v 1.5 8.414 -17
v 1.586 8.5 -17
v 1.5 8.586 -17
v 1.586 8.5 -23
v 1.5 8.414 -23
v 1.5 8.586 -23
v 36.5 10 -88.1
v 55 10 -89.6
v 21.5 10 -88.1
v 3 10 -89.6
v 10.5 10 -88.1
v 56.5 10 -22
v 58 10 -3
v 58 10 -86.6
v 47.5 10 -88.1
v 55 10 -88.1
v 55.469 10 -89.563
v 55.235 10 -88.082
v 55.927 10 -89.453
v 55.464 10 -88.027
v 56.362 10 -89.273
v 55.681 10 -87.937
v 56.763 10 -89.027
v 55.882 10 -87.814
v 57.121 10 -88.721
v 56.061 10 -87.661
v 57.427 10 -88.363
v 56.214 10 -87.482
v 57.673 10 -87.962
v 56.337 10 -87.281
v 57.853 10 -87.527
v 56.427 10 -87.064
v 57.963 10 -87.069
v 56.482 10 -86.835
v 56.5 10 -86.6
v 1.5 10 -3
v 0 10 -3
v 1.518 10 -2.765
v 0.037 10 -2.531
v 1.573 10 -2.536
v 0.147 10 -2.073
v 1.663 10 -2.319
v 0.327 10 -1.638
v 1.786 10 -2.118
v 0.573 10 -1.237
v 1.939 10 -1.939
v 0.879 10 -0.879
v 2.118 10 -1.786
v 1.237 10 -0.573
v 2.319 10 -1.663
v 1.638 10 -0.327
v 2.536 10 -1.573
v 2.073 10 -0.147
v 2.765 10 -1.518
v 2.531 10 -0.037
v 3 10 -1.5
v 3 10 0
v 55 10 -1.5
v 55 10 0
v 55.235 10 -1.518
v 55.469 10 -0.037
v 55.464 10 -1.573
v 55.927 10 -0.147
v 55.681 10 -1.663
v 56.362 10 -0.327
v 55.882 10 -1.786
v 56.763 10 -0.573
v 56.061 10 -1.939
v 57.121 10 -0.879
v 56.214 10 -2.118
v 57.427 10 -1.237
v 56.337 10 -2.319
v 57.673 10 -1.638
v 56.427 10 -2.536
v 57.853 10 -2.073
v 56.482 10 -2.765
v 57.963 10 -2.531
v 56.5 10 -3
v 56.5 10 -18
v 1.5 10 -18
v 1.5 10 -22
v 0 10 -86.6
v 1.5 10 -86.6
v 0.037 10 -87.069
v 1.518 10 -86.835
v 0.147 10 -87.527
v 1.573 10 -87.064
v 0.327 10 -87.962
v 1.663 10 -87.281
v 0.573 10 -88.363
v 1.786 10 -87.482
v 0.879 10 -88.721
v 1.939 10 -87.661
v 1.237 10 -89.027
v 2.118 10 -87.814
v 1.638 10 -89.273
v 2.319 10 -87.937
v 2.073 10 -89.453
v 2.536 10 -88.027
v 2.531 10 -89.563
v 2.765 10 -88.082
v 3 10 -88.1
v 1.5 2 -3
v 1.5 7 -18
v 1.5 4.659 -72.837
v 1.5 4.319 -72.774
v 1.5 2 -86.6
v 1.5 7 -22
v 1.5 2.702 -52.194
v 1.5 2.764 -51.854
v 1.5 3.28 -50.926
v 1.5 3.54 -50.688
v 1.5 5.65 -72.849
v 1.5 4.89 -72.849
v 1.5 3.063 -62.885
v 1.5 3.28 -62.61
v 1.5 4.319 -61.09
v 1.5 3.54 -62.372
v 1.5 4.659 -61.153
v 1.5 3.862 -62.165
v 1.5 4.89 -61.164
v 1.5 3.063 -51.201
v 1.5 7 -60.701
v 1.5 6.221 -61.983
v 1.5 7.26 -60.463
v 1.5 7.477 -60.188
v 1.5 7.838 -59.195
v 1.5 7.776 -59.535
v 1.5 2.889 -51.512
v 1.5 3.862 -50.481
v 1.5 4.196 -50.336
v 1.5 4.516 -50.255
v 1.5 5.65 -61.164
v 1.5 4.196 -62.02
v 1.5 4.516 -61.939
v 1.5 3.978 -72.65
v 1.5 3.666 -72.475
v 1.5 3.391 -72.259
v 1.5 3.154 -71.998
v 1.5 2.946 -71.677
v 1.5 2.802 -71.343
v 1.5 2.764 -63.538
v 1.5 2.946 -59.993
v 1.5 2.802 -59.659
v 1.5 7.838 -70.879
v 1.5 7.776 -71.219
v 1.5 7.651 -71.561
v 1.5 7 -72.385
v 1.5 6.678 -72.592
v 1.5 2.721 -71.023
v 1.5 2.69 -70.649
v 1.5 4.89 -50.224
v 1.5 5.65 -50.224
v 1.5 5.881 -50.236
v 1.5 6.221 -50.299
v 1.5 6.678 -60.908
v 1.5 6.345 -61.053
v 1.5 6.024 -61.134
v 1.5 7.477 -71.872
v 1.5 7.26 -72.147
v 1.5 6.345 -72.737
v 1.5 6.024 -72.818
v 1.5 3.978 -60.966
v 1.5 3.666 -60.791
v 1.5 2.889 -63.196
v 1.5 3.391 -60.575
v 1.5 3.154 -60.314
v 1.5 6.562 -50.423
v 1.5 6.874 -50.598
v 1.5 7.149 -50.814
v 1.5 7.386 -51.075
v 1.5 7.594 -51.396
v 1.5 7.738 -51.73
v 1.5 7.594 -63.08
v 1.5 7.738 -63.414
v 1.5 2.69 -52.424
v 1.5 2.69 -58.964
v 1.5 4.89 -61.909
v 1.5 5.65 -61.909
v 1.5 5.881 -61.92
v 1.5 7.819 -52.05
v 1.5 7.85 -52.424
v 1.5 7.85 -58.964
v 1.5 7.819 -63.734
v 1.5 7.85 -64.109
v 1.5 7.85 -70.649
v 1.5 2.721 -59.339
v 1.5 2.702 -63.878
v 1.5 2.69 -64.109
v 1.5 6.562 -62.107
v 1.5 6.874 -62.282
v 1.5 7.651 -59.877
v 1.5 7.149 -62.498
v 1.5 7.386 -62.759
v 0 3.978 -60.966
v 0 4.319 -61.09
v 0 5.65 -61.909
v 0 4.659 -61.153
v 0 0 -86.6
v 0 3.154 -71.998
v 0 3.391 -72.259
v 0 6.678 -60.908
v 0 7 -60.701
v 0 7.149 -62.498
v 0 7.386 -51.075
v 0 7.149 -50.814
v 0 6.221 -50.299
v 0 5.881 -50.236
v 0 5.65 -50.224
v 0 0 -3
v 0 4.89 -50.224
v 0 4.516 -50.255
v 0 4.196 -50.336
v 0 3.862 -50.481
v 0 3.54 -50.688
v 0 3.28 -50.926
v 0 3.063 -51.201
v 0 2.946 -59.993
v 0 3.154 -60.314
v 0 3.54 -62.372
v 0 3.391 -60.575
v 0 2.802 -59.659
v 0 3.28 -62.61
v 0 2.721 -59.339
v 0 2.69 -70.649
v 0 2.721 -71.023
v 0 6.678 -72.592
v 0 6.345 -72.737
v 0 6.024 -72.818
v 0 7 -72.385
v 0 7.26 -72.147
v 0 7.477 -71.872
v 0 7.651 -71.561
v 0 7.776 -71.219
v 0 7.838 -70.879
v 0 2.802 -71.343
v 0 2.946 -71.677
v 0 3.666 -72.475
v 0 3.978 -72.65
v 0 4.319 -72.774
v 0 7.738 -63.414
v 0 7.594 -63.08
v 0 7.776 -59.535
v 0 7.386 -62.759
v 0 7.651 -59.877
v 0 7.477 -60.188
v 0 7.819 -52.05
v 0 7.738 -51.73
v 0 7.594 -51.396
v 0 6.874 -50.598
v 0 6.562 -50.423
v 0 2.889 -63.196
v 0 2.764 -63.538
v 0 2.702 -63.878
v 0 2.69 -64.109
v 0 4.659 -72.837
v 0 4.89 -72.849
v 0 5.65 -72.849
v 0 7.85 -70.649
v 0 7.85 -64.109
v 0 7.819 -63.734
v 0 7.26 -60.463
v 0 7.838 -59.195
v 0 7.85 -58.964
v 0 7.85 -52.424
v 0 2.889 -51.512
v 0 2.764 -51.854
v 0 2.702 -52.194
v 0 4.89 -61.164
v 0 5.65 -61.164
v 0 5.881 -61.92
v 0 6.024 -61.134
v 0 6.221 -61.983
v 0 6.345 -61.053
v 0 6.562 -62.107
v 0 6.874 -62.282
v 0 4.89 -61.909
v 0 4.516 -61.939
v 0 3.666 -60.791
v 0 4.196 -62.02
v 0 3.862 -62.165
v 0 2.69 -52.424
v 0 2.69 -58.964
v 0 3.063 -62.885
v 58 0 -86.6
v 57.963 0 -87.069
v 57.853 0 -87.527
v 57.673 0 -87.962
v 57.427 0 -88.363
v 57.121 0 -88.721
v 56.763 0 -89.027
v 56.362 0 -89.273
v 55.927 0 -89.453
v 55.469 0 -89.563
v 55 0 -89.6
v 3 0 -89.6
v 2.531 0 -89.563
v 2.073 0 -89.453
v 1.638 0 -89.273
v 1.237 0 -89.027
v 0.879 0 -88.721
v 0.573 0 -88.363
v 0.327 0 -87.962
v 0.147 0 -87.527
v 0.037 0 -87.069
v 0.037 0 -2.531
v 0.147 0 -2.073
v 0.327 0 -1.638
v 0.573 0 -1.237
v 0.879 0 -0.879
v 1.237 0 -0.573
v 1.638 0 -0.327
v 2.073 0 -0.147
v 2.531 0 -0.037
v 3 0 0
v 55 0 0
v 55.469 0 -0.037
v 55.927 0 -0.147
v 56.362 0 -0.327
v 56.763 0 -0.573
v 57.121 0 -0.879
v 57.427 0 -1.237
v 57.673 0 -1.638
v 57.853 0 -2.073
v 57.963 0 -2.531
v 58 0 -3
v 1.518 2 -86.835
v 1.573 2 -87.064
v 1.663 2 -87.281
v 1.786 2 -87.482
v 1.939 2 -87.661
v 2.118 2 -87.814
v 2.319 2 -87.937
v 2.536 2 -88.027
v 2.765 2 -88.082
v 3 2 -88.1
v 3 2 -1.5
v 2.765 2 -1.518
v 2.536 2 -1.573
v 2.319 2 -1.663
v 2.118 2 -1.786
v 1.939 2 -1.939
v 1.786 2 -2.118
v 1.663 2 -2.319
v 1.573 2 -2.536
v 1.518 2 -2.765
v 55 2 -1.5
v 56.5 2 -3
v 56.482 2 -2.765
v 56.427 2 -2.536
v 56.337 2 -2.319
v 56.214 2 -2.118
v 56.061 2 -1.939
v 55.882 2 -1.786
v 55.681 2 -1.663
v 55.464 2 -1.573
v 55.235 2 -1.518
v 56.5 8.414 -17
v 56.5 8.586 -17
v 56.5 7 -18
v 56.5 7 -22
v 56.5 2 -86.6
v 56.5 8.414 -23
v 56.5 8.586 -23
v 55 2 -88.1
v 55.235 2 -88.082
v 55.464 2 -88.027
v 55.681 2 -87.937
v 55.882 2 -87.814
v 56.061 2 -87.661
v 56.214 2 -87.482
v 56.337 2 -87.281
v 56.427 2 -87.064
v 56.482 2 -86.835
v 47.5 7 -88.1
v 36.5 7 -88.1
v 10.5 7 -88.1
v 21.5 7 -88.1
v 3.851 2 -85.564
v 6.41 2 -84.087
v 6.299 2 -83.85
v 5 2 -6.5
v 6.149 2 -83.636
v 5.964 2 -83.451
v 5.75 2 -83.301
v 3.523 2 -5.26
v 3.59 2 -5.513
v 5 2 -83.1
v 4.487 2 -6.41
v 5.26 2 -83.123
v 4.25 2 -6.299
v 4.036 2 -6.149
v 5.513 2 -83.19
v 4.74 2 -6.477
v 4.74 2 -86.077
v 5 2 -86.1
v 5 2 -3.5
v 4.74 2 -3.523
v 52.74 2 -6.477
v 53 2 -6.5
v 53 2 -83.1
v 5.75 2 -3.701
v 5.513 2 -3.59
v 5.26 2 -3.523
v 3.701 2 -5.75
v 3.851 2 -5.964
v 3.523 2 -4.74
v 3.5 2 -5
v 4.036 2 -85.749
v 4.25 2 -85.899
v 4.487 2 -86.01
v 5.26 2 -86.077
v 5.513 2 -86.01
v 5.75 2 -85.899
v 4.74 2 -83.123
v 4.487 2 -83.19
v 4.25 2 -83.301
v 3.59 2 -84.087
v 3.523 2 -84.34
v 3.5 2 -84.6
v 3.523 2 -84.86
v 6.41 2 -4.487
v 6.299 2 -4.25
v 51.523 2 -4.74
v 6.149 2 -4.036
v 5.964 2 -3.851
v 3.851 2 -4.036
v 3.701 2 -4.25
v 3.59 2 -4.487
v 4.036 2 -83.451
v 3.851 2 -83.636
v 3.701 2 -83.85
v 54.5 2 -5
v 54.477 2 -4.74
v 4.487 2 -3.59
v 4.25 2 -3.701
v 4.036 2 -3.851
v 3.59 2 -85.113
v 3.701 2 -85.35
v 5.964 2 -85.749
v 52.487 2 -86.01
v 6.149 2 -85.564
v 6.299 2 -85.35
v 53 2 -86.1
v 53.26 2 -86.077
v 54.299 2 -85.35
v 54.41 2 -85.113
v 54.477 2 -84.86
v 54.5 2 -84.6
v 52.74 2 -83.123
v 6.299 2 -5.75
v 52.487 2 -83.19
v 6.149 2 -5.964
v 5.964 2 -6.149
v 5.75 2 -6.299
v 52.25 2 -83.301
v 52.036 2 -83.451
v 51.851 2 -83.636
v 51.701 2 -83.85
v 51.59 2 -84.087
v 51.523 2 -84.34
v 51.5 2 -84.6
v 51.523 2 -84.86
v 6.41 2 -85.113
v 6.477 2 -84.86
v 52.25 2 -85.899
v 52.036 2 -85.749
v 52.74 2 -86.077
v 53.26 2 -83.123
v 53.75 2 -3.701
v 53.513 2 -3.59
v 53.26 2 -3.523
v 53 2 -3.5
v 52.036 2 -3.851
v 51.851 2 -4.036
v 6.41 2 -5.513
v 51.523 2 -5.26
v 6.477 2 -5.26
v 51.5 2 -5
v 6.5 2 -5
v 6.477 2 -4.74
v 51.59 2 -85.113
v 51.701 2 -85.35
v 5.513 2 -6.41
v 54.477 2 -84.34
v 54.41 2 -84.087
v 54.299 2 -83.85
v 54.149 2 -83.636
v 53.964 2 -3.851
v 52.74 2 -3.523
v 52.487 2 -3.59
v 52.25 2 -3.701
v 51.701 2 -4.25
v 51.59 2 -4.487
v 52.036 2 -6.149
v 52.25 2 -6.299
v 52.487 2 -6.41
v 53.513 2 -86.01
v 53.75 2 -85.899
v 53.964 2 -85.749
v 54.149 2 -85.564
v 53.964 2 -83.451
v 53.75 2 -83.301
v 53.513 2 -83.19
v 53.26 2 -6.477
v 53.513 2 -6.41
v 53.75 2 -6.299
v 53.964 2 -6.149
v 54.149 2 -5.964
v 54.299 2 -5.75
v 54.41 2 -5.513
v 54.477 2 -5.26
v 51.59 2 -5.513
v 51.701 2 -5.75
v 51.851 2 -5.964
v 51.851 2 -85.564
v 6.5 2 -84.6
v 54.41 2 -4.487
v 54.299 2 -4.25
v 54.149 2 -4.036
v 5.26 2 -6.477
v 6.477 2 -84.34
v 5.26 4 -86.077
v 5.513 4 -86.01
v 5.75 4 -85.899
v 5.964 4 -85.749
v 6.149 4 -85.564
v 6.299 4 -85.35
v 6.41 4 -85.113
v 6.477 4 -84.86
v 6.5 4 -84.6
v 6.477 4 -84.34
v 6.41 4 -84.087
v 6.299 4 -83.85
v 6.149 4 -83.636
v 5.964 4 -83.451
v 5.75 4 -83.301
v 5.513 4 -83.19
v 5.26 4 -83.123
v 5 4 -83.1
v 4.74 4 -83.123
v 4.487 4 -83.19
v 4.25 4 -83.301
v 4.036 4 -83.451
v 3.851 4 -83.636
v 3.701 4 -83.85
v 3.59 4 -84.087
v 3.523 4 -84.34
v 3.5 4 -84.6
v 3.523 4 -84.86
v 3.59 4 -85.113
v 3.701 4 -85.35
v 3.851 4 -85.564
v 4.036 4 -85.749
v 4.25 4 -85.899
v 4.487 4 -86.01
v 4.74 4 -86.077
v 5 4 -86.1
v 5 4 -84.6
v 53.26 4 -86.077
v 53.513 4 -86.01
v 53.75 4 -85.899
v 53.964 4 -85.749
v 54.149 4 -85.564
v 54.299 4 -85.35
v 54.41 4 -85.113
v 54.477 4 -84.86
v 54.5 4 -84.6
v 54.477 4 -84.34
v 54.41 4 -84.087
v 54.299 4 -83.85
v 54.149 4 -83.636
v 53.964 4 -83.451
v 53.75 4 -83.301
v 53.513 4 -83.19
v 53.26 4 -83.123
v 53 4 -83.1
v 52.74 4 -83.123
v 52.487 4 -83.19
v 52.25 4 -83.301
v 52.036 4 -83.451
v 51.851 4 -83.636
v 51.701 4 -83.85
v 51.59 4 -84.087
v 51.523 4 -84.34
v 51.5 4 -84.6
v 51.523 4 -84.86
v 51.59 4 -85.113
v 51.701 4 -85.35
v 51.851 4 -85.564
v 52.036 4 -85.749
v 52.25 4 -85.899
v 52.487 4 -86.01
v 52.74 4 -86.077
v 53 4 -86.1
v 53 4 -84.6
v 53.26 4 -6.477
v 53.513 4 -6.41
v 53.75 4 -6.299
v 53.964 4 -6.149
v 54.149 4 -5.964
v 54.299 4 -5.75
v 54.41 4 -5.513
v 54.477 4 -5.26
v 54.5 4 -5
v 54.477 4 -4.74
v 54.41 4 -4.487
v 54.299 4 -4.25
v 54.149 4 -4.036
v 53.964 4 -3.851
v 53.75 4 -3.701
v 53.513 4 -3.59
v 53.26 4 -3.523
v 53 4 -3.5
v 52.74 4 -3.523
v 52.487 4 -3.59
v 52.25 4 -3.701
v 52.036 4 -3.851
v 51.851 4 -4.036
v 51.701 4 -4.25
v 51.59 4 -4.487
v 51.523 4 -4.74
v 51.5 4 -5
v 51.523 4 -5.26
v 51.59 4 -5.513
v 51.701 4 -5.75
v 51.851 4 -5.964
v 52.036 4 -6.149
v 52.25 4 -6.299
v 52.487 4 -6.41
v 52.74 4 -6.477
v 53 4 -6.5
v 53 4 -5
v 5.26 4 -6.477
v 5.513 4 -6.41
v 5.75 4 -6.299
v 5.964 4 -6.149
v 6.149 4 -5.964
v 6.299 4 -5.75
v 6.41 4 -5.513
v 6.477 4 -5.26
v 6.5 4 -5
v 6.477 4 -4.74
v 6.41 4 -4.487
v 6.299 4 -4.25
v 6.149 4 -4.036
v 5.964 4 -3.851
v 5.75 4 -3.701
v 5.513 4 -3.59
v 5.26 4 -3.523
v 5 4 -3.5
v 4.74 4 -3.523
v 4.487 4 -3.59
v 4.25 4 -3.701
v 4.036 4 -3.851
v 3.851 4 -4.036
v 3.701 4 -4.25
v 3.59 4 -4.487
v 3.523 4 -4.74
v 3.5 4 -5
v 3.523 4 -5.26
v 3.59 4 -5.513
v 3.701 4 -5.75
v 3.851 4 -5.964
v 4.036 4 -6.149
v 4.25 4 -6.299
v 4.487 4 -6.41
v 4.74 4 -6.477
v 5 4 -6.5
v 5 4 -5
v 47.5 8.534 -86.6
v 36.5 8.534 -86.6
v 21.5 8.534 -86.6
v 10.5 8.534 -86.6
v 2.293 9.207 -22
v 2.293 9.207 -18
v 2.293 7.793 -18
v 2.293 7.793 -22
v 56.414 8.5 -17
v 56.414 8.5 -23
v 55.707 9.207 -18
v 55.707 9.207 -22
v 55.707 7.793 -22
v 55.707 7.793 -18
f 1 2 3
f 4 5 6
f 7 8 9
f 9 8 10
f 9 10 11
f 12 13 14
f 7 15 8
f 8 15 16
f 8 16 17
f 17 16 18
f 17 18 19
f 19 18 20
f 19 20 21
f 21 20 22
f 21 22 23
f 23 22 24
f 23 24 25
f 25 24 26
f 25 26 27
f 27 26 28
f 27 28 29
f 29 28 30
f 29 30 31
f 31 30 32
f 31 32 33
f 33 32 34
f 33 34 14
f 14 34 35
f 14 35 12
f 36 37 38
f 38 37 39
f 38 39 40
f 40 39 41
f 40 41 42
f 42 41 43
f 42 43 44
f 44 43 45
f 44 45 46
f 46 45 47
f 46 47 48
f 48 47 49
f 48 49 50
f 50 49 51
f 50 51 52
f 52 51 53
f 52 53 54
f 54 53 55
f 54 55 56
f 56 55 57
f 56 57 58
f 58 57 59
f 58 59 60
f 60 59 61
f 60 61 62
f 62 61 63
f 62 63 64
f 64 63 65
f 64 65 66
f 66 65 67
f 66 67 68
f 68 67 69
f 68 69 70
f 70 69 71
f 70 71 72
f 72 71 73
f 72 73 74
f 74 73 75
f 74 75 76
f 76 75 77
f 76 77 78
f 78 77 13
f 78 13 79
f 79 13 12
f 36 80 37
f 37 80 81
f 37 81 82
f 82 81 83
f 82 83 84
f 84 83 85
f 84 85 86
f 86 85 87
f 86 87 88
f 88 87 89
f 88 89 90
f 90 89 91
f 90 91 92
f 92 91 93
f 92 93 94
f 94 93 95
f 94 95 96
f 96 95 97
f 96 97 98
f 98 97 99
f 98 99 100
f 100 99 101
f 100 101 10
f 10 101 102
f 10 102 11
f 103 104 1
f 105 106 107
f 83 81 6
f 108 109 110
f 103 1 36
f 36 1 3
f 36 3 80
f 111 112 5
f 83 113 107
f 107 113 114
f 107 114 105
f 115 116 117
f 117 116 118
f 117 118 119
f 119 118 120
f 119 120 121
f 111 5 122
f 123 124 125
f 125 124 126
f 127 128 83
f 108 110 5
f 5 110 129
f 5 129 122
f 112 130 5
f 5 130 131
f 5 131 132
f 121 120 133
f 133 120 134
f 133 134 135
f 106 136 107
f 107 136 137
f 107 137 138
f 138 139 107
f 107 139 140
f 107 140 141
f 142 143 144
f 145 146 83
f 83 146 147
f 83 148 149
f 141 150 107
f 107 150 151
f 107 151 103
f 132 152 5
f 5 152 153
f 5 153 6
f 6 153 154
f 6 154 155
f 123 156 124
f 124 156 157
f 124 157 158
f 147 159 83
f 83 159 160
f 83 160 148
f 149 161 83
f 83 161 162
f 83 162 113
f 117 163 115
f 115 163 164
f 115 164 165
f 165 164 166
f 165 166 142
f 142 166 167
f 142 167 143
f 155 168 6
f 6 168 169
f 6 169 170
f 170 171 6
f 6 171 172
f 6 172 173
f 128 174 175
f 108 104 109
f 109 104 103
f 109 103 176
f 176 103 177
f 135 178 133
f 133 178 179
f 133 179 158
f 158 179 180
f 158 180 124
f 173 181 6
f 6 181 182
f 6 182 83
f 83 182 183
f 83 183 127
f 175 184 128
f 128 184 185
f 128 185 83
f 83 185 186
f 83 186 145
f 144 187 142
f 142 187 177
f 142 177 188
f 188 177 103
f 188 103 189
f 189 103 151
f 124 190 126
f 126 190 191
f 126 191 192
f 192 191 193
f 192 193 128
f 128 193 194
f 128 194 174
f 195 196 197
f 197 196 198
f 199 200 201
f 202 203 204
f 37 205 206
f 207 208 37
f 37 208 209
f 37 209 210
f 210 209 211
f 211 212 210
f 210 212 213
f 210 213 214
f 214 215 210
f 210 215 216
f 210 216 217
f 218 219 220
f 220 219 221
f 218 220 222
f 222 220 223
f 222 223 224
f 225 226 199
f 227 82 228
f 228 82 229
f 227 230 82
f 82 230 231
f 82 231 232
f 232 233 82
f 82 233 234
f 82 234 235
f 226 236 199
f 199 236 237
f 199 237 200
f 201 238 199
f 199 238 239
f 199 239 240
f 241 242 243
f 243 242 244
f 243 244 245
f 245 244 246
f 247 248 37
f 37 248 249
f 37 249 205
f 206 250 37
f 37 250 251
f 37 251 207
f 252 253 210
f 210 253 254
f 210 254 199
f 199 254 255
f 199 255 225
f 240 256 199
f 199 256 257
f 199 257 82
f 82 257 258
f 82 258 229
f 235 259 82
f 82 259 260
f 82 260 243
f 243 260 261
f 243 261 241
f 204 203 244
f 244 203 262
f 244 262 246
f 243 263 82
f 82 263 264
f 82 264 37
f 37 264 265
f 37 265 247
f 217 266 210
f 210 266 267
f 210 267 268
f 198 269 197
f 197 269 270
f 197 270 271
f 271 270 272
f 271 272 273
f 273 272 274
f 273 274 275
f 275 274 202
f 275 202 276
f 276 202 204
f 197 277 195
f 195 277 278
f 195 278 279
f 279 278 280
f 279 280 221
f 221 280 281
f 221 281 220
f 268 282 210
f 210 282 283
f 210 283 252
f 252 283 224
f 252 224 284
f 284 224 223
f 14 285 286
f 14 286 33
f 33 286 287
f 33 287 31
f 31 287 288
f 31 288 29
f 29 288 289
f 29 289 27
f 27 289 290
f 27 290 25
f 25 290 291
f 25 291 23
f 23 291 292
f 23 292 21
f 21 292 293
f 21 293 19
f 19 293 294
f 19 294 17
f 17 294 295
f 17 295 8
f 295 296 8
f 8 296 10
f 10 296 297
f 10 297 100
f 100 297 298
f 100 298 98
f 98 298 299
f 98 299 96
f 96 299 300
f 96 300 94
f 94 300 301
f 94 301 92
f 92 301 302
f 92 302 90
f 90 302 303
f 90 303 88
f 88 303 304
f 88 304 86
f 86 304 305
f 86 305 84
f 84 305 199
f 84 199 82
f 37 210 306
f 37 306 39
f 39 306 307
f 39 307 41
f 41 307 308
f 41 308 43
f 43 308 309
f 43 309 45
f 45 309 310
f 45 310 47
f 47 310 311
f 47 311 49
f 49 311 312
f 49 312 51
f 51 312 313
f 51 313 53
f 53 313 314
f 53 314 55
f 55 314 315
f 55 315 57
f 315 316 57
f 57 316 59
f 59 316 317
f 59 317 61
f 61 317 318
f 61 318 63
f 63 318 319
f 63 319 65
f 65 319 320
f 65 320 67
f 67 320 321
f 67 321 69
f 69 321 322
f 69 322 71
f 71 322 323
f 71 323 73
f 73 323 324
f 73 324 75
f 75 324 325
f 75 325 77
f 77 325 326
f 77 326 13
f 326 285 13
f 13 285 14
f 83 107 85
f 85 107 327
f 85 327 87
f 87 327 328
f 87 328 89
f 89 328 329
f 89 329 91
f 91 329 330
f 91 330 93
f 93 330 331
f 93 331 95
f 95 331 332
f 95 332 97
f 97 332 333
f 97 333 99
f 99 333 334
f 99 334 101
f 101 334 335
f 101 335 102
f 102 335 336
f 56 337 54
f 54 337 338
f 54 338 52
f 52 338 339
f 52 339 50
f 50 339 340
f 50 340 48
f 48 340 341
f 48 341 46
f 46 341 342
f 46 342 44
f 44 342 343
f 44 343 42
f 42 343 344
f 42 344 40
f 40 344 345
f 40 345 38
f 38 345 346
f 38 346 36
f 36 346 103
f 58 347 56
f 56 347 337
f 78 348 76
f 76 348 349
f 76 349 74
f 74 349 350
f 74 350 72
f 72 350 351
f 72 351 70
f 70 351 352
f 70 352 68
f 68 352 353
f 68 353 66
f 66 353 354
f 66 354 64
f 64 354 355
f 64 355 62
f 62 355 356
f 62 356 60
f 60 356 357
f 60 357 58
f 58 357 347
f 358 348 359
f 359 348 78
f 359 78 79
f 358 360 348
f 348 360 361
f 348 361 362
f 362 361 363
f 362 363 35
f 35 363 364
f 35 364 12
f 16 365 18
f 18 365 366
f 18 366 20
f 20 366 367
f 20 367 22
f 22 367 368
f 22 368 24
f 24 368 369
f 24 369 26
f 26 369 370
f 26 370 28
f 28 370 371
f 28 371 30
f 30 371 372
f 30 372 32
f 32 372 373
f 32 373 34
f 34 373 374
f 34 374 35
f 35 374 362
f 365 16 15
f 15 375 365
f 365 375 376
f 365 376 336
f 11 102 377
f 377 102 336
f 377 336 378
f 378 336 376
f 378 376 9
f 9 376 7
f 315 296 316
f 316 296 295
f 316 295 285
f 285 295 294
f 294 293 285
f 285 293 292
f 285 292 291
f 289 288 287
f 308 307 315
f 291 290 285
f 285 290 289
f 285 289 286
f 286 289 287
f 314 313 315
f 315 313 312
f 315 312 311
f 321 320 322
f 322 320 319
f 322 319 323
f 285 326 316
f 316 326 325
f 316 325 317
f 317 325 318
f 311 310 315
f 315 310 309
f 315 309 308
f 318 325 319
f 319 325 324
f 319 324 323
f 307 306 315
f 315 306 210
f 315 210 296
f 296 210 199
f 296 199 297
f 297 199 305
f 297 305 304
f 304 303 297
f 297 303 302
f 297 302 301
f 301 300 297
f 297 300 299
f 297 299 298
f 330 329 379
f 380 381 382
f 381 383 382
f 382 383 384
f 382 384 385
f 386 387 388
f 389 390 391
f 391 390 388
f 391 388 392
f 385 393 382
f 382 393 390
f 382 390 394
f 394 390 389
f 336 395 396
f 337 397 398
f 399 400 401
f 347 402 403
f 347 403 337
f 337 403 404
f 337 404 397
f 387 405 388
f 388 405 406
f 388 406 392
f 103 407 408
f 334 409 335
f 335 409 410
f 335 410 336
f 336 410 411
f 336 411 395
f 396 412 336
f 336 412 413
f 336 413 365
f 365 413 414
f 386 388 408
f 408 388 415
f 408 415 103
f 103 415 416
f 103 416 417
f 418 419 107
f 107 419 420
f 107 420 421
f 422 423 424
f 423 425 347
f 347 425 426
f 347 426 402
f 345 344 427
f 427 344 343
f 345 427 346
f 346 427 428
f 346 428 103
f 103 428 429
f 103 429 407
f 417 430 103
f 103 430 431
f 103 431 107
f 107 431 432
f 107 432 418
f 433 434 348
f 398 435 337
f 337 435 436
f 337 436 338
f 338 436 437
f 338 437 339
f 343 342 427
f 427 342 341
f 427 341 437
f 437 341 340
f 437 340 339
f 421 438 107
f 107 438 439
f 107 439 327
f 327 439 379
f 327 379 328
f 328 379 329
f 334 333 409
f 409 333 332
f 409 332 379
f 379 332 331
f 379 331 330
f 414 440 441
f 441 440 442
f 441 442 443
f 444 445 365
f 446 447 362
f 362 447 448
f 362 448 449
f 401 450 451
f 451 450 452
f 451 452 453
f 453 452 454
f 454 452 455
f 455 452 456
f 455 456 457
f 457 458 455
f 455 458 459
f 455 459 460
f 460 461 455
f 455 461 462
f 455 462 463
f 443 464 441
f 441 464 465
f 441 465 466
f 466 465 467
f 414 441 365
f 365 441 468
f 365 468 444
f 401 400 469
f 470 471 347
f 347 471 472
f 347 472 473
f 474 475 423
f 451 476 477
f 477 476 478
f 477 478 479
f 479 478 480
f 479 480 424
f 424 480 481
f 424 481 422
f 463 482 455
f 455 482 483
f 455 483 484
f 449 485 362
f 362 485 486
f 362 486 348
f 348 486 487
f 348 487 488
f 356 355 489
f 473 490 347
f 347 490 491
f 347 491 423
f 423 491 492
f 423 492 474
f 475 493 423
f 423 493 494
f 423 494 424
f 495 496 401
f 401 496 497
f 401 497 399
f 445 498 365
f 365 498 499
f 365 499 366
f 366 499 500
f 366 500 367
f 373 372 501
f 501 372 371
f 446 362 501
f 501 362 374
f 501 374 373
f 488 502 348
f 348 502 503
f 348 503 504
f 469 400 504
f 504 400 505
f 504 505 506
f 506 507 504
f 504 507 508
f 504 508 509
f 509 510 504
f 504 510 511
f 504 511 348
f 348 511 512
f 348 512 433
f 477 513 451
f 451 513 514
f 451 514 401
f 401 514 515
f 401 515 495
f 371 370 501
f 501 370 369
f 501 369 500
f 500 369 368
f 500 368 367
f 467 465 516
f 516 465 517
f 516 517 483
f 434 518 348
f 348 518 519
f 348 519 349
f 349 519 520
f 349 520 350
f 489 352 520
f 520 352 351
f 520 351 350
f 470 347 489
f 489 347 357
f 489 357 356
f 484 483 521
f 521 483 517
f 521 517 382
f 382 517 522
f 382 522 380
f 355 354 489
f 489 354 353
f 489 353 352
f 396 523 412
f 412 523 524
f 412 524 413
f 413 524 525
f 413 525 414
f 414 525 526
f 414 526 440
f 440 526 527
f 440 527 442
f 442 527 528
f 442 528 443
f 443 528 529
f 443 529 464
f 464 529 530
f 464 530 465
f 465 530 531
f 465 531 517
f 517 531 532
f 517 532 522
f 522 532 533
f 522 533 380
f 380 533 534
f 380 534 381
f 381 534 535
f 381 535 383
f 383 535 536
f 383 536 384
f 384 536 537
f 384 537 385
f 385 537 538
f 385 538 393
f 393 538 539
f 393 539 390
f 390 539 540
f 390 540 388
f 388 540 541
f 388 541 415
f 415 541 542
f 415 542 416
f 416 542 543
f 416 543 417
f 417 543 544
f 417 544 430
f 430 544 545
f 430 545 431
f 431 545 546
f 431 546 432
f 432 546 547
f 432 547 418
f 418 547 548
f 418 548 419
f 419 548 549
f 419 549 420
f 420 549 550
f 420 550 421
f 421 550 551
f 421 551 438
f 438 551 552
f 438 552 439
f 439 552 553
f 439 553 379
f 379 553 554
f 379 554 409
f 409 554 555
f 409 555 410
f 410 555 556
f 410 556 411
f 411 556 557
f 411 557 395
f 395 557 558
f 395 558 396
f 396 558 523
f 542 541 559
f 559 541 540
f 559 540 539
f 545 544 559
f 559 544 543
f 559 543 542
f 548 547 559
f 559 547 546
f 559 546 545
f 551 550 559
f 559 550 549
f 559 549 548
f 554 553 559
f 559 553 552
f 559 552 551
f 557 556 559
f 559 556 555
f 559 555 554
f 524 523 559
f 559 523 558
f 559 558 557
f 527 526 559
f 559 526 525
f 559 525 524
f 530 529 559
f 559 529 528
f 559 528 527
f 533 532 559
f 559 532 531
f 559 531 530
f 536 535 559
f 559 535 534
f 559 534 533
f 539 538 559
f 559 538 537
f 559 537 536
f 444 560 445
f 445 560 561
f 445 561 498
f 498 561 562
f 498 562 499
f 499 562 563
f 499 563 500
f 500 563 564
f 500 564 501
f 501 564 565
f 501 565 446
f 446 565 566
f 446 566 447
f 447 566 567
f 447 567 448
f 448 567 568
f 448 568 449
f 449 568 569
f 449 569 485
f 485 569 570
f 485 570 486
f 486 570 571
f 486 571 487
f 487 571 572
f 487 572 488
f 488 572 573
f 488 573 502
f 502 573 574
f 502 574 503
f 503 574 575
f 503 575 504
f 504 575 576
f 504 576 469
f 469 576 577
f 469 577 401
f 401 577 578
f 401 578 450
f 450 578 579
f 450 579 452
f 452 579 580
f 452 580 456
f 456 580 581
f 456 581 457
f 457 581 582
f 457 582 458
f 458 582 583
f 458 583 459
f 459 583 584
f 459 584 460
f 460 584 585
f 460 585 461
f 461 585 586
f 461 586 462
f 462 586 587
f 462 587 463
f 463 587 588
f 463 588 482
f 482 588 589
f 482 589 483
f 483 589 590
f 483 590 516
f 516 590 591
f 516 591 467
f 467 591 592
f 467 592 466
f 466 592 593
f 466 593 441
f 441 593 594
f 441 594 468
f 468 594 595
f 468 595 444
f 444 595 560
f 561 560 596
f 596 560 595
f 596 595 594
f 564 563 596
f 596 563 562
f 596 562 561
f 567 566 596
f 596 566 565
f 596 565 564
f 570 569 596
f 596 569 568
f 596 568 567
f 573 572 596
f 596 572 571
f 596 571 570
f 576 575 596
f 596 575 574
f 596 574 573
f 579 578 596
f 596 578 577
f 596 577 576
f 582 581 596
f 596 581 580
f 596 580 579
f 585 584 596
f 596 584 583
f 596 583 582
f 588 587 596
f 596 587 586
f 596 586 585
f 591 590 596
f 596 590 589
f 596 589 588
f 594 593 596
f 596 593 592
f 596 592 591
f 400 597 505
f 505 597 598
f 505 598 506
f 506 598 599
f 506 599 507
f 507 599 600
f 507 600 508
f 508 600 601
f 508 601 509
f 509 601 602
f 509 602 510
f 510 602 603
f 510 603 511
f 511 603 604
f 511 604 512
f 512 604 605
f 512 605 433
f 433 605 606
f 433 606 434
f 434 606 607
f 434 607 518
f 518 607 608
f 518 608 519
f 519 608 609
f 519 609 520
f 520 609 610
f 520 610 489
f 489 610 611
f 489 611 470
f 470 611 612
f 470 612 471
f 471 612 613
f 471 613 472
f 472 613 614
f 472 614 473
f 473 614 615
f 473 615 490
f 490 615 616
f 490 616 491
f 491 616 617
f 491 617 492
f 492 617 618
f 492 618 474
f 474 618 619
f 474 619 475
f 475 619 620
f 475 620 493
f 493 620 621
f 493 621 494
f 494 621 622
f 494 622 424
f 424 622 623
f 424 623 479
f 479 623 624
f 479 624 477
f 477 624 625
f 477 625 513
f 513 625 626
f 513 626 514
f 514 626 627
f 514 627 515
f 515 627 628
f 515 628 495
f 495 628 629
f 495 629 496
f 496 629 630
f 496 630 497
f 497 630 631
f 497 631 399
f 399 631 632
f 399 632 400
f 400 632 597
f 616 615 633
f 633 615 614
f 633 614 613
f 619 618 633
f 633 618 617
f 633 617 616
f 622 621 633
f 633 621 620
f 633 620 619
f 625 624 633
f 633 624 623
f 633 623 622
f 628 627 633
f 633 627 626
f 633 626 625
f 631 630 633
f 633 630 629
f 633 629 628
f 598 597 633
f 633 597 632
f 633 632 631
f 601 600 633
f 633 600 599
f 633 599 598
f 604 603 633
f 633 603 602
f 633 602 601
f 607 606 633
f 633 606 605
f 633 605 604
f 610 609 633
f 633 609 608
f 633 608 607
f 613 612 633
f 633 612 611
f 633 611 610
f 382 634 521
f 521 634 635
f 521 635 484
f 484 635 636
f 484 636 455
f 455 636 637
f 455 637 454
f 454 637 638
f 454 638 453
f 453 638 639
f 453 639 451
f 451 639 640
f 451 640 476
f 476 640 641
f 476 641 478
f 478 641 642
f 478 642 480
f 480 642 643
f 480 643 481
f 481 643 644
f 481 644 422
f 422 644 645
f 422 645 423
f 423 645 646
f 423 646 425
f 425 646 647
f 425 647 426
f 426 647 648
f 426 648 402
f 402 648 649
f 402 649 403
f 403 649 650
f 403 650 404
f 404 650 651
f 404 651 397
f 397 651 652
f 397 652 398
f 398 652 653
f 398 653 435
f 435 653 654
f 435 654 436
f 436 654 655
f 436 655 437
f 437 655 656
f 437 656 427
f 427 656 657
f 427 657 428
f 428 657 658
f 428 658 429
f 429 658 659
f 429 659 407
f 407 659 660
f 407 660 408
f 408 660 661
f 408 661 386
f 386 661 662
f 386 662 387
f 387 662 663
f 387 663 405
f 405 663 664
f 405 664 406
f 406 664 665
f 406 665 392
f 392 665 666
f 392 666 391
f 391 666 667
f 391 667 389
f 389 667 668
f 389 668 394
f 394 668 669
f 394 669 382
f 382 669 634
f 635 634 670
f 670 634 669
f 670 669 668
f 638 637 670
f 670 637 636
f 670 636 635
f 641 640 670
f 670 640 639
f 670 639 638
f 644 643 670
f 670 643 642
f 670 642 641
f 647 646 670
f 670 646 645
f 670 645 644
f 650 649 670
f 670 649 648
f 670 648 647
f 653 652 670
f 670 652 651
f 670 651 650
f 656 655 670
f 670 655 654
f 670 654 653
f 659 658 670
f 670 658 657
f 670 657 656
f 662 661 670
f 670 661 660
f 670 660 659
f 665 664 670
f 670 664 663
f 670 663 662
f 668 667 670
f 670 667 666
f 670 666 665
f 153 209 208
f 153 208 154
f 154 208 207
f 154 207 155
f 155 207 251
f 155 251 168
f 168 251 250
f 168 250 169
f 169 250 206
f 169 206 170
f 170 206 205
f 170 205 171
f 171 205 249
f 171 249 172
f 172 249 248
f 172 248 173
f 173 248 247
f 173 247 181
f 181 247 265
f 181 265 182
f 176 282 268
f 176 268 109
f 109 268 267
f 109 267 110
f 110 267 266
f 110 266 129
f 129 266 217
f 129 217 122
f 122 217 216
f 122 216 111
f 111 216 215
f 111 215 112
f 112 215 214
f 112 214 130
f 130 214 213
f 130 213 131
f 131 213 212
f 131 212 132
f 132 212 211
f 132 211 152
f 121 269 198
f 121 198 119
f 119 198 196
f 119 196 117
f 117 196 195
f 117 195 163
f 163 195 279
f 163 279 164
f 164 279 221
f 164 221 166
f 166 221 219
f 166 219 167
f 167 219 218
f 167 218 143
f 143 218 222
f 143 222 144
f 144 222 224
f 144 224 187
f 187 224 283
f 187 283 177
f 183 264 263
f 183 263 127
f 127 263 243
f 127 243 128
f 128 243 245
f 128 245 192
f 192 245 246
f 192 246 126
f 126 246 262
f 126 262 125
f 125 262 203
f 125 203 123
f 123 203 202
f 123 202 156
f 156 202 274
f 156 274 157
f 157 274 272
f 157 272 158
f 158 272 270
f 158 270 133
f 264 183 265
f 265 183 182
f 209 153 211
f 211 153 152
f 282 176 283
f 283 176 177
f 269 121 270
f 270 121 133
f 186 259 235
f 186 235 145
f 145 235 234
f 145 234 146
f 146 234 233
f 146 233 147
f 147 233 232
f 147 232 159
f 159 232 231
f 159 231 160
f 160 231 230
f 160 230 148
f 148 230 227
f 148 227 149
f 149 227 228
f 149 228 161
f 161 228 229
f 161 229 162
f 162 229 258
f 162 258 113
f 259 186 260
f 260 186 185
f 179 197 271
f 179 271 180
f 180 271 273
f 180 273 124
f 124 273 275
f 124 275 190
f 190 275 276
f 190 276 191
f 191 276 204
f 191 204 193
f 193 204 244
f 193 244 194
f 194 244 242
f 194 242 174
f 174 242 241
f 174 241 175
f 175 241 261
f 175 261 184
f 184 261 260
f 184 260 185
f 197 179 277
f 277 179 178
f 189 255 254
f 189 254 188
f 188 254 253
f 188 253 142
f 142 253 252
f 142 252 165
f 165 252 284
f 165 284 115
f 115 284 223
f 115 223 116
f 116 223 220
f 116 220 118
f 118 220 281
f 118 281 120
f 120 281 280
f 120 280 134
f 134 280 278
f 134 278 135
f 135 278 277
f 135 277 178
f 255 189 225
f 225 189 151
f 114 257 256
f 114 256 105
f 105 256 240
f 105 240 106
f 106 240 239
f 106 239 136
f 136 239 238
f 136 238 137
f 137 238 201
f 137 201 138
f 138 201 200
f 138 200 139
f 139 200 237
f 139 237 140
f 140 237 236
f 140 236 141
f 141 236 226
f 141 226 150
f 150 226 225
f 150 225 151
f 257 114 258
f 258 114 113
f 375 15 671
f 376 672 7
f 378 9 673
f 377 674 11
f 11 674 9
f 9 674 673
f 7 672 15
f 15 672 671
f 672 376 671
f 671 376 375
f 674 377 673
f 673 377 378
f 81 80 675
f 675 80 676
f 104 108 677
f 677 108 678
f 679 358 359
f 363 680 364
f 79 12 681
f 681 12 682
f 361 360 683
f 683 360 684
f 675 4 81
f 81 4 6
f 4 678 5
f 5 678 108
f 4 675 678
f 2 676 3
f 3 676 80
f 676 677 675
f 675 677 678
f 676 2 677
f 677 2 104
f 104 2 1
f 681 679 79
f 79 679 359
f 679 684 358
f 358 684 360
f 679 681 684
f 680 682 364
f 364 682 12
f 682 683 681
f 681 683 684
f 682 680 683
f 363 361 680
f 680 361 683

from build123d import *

# Parameters (mm, degrees)
EXTRUDE_1_DEPTH     = 2
EXTRUDE_2_DEPTH     = 11
SKETCH_5_R          = 1.5
EXTRUDE_3_DEPTH     = 2
CUT_EXTRUDE_START   = -3
CUT_EXTRUDE_2_DEPTH = 3
SKETCH_8_W          = 11
SKETCH_8_H          = 3
EXTRUDE_4_DEPTH     = 1.5
CUT_EXTRUDE_3_DEPTH = 40
SKETCH_11_W         = 6
SKETCH_11_H         = 3
EXTRUDE_5_DEPTH     = 1.5
CUT_EXTRUDE_4_DEPTH = 7
SKETCH_13_W         = 6
SKETCH_13_H         = 3
EXTRUDE_6_DEPTH     = 1.5
CUT_EXTRUDE_5_DEPTH = 7
CHAMFER_1_SIZE      = 1
CHAMFER_2_SIZE      = 1
CUT_EXTRUDE_6_DEPTH = 2


with BuildPart() as part:
    # 草图1 → 凸台-拉伸1 (new body)
    with BuildSketch(Plane(origin=(0, 0, 0), x_dir=(1, 0, 0), z_dir=(0, 1, 0))):
        with BuildLine():
            Line((3, 0), (55, 0))
            ThreePointArc((55, 0), (57.121320344, 0.878679656), (58, 3))
            Line((58, 3), (58, 86.6))
            ThreePointArc((58, 86.6), (57.121320344, 88.721320344), (55, 89.6))
            Line((55, 89.6), (3, 89.6))
            ThreePointArc((3, 89.6), (0.878679656, 88.721320344), (0, 86.6))
            Line((0, 86.6), (0, 3))
            ThreePointArc((0, 3), (0.878679656, 0.878679656), (3, 0))
        make_face()
    extrude(amount=EXTRUDE_1_DEPTH)

    # 草图3 → 凸台-拉伸2 (add)
    with BuildSketch(Plane(origin=(0, 2, 0), x_dir=(1, 0, 0), z_dir=(0, 1, 0))):
        with BuildLine():
            Line((0, 86.6), (0, 3))
            ThreePointArc((0, 3), (0.878679656, 0.878679656), (3, 0))
            Line((3, 0), (55, 0))
            ThreePointArc((55, 0), (57.121320344, 0.878679656), (58, 3))
            Line((58, 3), (58, 86.6))
            ThreePointArc((58, 86.6), (57.121320344, 88.721320344), (55, 89.6))
            Line((55, 89.6), (3, 89.6))
            ThreePointArc((3, 89.6), (0.878679656, 88.721320344), (0, 86.6))
        make_face()
        with BuildLine():
            Line((1.5, 86.6), (1.5, 3))
            ThreePointArc((1.5, 3), (1.939339828, 1.939339828), (3, 1.5))
            Line((3, 1.5), (55, 1.5))
            ThreePointArc((55, 1.5), (56.060660172, 1.939339828), (56.5, 3))
            Line((56.5, 3), (56.5, 86.6))
            ThreePointArc((56.5, 86.6), (56.060660172, 87.660660172), (55, 88.1))
            Line((55, 88.1), (3, 88.1))
            ThreePointArc((3, 88.1), (1.939339828, 87.660660172), (1.5, 86.6))
        make_face(mode=Mode.SUBTRACT)
    extrude(amount=EXTRUDE_2_DEPTH)

    # 草图5 → 凸台-拉伸3 (add)
    with BuildSketch(Plane(origin=(0, 2, 0), x_dir=(1, 0, 0), z_dir=(0, 1, 0))):
        with Locations(Location((5, 84.6, 0), (0, 0, 270))):
            Circle(SKETCH_5_R)
        with Locations(Location((53, 84.6, 0), (0, 0, 90))):
            Circle(SKETCH_5_R)
        with Locations(Location((53, 5, 0), (0, 0, 270))):
            Circle(SKETCH_5_R)
        with Locations(Location((5, 5, 0), (0, 0, 90))):
            Circle(SKETCH_5_R)
    extrude(amount=EXTRUDE_3_DEPTH)

    # 草图7 → 切除-拉伸2 (cut)
    with BuildSketch(Plane(origin=(0, 13, 0), x_dir=(1, 0, 0), z_dir=(0, 1, 0)).offset(CUT_EXTRUDE_START)):
        with BuildLine():
            Line((0, 86.6), (0, 3))
            ThreePointArc((0, 3), (0.878679656, 0.878679656), (3, 0))
            Line((3, 0), (55, 0))
            ThreePointArc((55, 0), (57.121320344, 0.878679656), (58, 3))
            Line((58, 3), (58, 86.6))
            ThreePointArc((58, 86.6), (57.121320344, 88.721320344), (55, 89.6))
            Line((55, 89.6), (3, 89.6))
            ThreePointArc((3, 89.6), (0.878679656, 88.721320344), (0, 86.6))
        make_face()
        with BuildLine():
            Line((3, 1.5), (55, 1.5))
            ThreePointArc((55, 1.5), (56.060660172, 1.939339828), (56.5, 3))
            Line((56.5, 3), (56.5, 86.6))
            ThreePointArc((56.5, 86.6), (56.060660172, 87.660660172), (55, 88.1))
            Line((55, 88.1), (3, 88.1))
            ThreePointArc((3, 88.1), (1.939339828, 87.660660172), (1.5, 86.6))
            Line((1.5, 86.6), (1.5, 3))
            ThreePointArc((1.5, 3), (1.939339828, 1.939339828), (3, 1.5))
        make_face(mode=Mode.SUBTRACT)
    extrude(amount=CUT_EXTRUDE_2_DEPTH, mode=Mode.SUBTRACT)

    # 草图8 → 凸台-拉伸4 (add)
    with BuildSketch(Plane.XY.offset(-88.1)):
        with Locations((16, 8.5)):
            Rectangle(SKETCH_8_W, SKETCH_8_H)
        with Locations((42, 8.5)):
            Rectangle(SKETCH_8_W, SKETCH_8_H)
    extrude(amount=EXTRUDE_4_DEPTH)

    # 草图10 → 切除-拉伸3 (cut)
    with BuildSketch(Plane.ZY.offset(-10.5)):
        Polygon((-86.6, 10), (-88.1, 10), (-86.6, 8.534338043), align=None)
        Polygon((-86.6, 7), (-86.6, 8.534338043), (-88.1, 7), align=None)
    extrude(amount=-CUT_EXTRUDE_3_DEPTH, mode=Mode.SUBTRACT)

    # 草图11 → 凸台-拉伸5 (add)
    with BuildSketch(Plane(origin=(1.5, 0, 0), x_dir=(0, 0, -1), z_dir=(1, 0, 0))):
        with Locations((20, 8.5)):
            Rectangle(SKETCH_11_W, SKETCH_11_H)
    extrude(amount=EXTRUDE_5_DEPTH)

    # 草图12 → 切除-拉伸4 (cut)
    with BuildSketch(Plane.XY.offset(-17)):
        Polygon((1.5, 10), (3, 8.5), (3, 10), align=None)
        Polygon((3, 7), (3, 8.5), (1.5, 7), align=None)
    extrude(amount=-CUT_EXTRUDE_4_DEPTH, mode=Mode.SUBTRACT)

    # 草图13 → 凸台-拉伸6 (add)
    with BuildSketch(Plane.ZY.offset(-56.5)):
        with Locations((-20, 8.5)):
            Rectangle(SKETCH_13_W, SKETCH_13_H)
    extrude(amount=EXTRUDE_6_DEPTH)

    # 草图15 → 切除-拉伸5 (cut)
    with BuildSketch(Plane(origin=(0, 0, -23), x_dir=(-1, 0, 0), z_dir=(0, 0, -1))):
        Polygon((-55, 10), (-56.5, 10), (-55, 8.5), align=None)
        Polygon((-55, 7), (-55, 8.5), (-56.5, 7), align=None)
    extrude(amount=-CUT_EXTRUDE_5_DEPTH, mode=Mode.SUBTRACT)

    # 倒角1
    # the kernel refuses this chamfer: 1 mm, written as the material it takes off along each edge
    with BuildSketch(Plane(origin=(2.057190958, 8.5, -17.666666667), x_dir=(0, -1, 0), z_dir=(0.816496580927726, 0, 0.5773502691896257)), Plane(origin=(2.057190958, 8.5, -22.333333333), x_dir=(-0.5, -0.4999999999999994, -0.707106781186548), z_dir=(0.816496580927726, 0, -0.5773502691896257))) as chamfer_1_piece_1:
        Polygon((-0.707106781, 0.40824829), (0.707106781, 0.40824829), (0, -0.816496581), align=None)
    extrude(amount=1.270170592, mode=Mode.SUBTRACT)
    with BuildSketch(Plane(origin=(3, 8.5, -14.428317012), x_dir=(-0.6873969152646603, 0.7262819568766866, 0), z_dir=(0, 0, -1))) as chamfer_1_piece_2:
        Polygon((CHAMFER_1_SIZE * 0.999621916911, -CHAMFER_1_SIZE * 0.0274958766106), (-CHAMFER_1_SIZE * 0.0274958766106, -CHAMFER_1_SIZE * 0.999621916911), (0, 0), align=None)
    extrude(amount=11.143365976, mode=Mode.SUBTRACT)
    with BuildSketch(Plane(origin=(4.81845448, 6.68154552, -23), x_dir=(0.019442520806014225, 0.019442520806014253, 0.9996219169112968), z_dir=(-0.707106781186548, 0.7071067811865471, 0))) as chamfer_1_piece_3_section:
        Polygon((CHAMFER_1_SIZE * 0.999621916911, -CHAMFER_1_SIZE * 0.0274958766106), (-CHAMFER_1_SIZE * 0.0274958766106, -CHAMFER_1_SIZE * 0.999621916911), (0, 0), align=None)
    chamfer_1_piece_3 = extrude(amount=7.264686319, mode=Mode.PRIVATE)
    chamfer_1_piece_3 = split(chamfer_1_piece_3, bisect_by=Plane(origin=(1.5, 8.929402981, -22.651130884), z_dir=(1, 0, 0)), keep=Keep.TOP, mode=Mode.PRIVATE)
    add(chamfer_1_piece_3, mode=Mode.SUBTRACT)
    with BuildSketch(Plane(origin=(-0.31845448, 11.81845448, -17), x_dir=(0.019442520806013688, 0.01944252080601371, -0.9996219169112968), z_dir=(0.707106781186548, -0.7071067811865471, 0))) as chamfer_1_piece_4_section:
        Polygon((CHAMFER_1_SIZE * 0.999621916911, -CHAMFER_1_SIZE * 0.0274958766106), (-CHAMFER_1_SIZE * 0.0274958766106, -CHAMFER_1_SIZE * 0.999621916911), (0, 0), align=None)
    chamfer_1_piece_4 = extrude(amount=7.264686319, mode=Mode.PRIVATE)
    chamfer_1_piece_4 = split(chamfer_1_piece_4, bisect_by=Plane(origin=(1.5, 8.929402981, -17.348869116), z_dir=(1, 0, 0)), keep=Keep.TOP, mode=Mode.PRIVATE)
    add(chamfer_1_piece_4, mode=Mode.SUBTRACT)
    with BuildSketch(Plane(origin=(-0.31845448, 5.18154552, -23), x_dir=(-0.7068394360706733, 0.7068394360706738, -0.027495876610585633), z_dir=(0.7071067811865477, 0.7071067811865474, 0))) as chamfer_1_piece_5_section:
        Polygon((CHAMFER_1_SIZE * 0.999621916911, CHAMFER_1_SIZE * 0.0274958766106), (-CHAMFER_1_SIZE * 0.0274958766106, CHAMFER_1_SIZE * 0.999621916911), (0, 0), align=None)
    chamfer_1_piece_5 = extrude(amount=7.264686319, mode=Mode.PRIVATE)
    chamfer_1_piece_5 = split(chamfer_1_piece_5, bisect_by=Plane(origin=(1.5, 8.070597019, -22.651130884), z_dir=(1, 0, 0)), keep=Keep.TOP, mode=Mode.PRIVATE)
    add(chamfer_1_piece_5, mode=Mode.SUBTRACT)
    with BuildSketch(Plane(origin=(4.81845448, 10.31845448, -17), x_dir=(0.019442520806014236, -0.019442520806014243, -0.9996219169112968), z_dir=(-0.7071067811865477, -0.7071067811865474, 0))) as chamfer_1_piece_6_section:
        Polygon((CHAMFER_1_SIZE * 0.999621916911, -CHAMFER_1_SIZE * 0.0274958766106), (-CHAMFER_1_SIZE * 0.0274958766106, -CHAMFER_1_SIZE * 0.999621916911), (0, 0), align=None)
    chamfer_1_piece_6 = extrude(amount=7.264686319, mode=Mode.PRIVATE)
    chamfer_1_piece_6 = split(chamfer_1_piece_6, bisect_by=Plane(origin=(1.5, 8.070597019, -17.348869116), z_dir=(1, 0, 0)), keep=Keep.TOP, mode=Mode.PRIVATE)
    add(chamfer_1_piece_6, mode=Mode.SUBTRACT)

    # 倒角2
    # the kernel refuses this chamfer: 1 mm, written as the material it takes off along each edge
    with BuildSketch(Plane(origin=(55.942809042, 8.5, -22.333333333), x_dir=(0, -1, 0), z_dir=(-0.8164965809277266, 0, -0.577350269189625)), Plane(origin=(55.942809042, 8.5, -17.666666667), x_dir=(0.49999999999999983, -0.4999999999999986, 0.7071067811865487), z_dir=(-0.8164965809277266, 0, 0.577350269189625))) as chamfer_2_piece_1:
        Polygon((-0.707106781, 0.40824829), (0.707106781, 0.40824829), (0, -0.816496581), align=None)
    extrude(amount=1.270170592, mode=Mode.SUBTRACT)
    with BuildSketch(Plane(origin=(55, 8.5, -25.571682988), x_dir=(0.6873969152646596, 0.7262819568766873, 0), z_dir=(0, 0, 1))) as chamfer_2_piece_2:
        Polygon((CHAMFER_2_SIZE * 0.999621916911, -CHAMFER_2_SIZE * 0.0274958766106), (-CHAMFER_2_SIZE * 0.0274958766106, -CHAMFER_2_SIZE * 0.999621916911), (0, 0), align=None)
    extrude(amount=11.143365976, mode=Mode.SUBTRACT)
    with BuildSketch(Plane(origin=(58.31845448, 11.81845448, -17), x_dir=(-0.01944252080601641, 0.019442520806016383, -0.9996219169112968), z_dir=(-0.7071067811865471, -0.707106781186548, 0))) as chamfer_2_piece_3_section:
        Polygon((CHAMFER_2_SIZE * 0.999621916911, CHAMFER_2_SIZE * 0.0274958766106), (-CHAMFER_2_SIZE * 0.0274958766106, CHAMFER_2_SIZE * 0.999621916911), (0, 0), align=None)
    chamfer_2_piece_3 = extrude(amount=7.264686319, mode=Mode.PRIVATE)
    chamfer_2_piece_3 = split(chamfer_2_piece_3, bisect_by=Plane(origin=(56.5, 8.929402981, -17.348869116), z_dir=(-1, 0, 0)), keep=Keep.TOP, mode=Mode.PRIVATE)
    add(chamfer_2_piece_3, mode=Mode.SUBTRACT)
    with BuildSketch(Plane(origin=(58.31845448, 11.81845448, -23), x_dir=(-0.01944252080601382, 0.019442520806013795, 0.9996219169112968), z_dir=(-0.7071067811865471, -0.707106781186548, 0))) as chamfer_2_piece_4_section:
        Polygon((CHAMFER_2_SIZE * 0.999621916911, -CHAMFER_2_SIZE * 0.0274958766106), (-CHAMFER_2_SIZE * 0.0274958766106, -CHAMFER_2_SIZE * 0.999621916911), (0, 0), align=None)
    chamfer_2_piece_4 = extrude(amount=7.264686319, mode=Mode.PRIVATE)
    chamfer_2_piece_4 = split(chamfer_2_piece_4, bisect_by=Plane(origin=(56.5, 8.929402981, -22.651130884), z_dir=(-1, 0, 0)), keep=Keep.TOP, mode=Mode.PRIVATE)
    add(chamfer_2_piece_4, mode=Mode.SUBTRACT)
    with BuildSketch(Plane(origin=(53.18154552, 10.31845448, -17), x_dir=(0.706839436070674, 0.7068394360706731, 0.0274958766105856), z_dir=(0.7071067811865471, -0.707106781186548, 0))) as chamfer_2_piece_5_section:
        Polygon((CHAMFER_2_SIZE * 0.999621916911, -CHAMFER_2_SIZE * 0.0274958766106), (-CHAMFER_2_SIZE * 0.0274958766106, -CHAMFER_2_SIZE * 0.999621916911), (0, 0), align=None)
    chamfer_2_piece_5 = extrude(amount=7.264686319, mode=Mode.PRIVATE)
    chamfer_2_piece_5 = split(chamfer_2_piece_5, bisect_by=Plane(origin=(56.5, 8.070597019, -17.348869116), z_dir=(-1, 0, 0)), keep=Keep.TOP, mode=Mode.PRIVATE)
    add(chamfer_2_piece_5, mode=Mode.SUBTRACT)
    with BuildSketch(Plane(origin=(53.18154552, 10.31845448, -23), x_dir=(-0.01944252080601641, -0.019442520806016383, 0.9996219169112968), z_dir=(0.7071067811865471, -0.707106781186548, 0))) as chamfer_2_piece_6_section:
        Polygon((CHAMFER_2_SIZE * 0.999621916911, -CHAMFER_2_SIZE * 0.0274958766106), (-CHAMFER_2_SIZE * 0.0274958766106, -CHAMFER_2_SIZE * 0.999621916911), (0, 0), align=None)
    chamfer_2_piece_6 = extrude(amount=7.264686319, mode=Mode.PRIVATE)
    chamfer_2_piece_6 = split(chamfer_2_piece_6, bisect_by=Plane(origin=(56.5, 8.070597019, -22.651130884), z_dir=(-1, 0, 0)), keep=Keep.TOP, mode=Mode.PRIVATE)
    add(chamfer_2_piece_6, mode=Mode.SUBTRACT)

    # 草图16 → 切除-拉伸6 (cut)
    # profile 1 of 4: a face of its own
    with BuildSketch(Plane(origin=(0, 2, -82.999537719), x_dir=(0, 1, 0), z_dir=(-1, 0, 0))):
        with BuildLine():
            add(Edge.make_bspline(
                [(3.650025513, -10.151031112), (3.92482832, -10.151031112), (4.462198601, -10.245555275), (5.25406566, -10.746990965), (5.755501349, -11.538858023), (5.850025513, -12.076228304), (5.850025513, -12.351031112)],
                knots=[0, 0, 0, 0, 0.25, 0.5, 0.75, 1, 1, 1, 1], degree=3))
            Line((5.850025513, -12.351031112), (5.850025513, -18.891031112))
            add(Edge.make_bspline(
                [(5.850025513, -18.891031112), (5.850025513, -19.165833919), (5.755501349, -19.7032042), (5.25406566, -20.495071258), (4.462198601, -20.996506948), (3.92482832, -21.091031112), (3.650025513, -21.091031112)],
                knots=[0, 0, 0, 0, 0.25, 0.5, 0.75, 1, 1, 1, 1], degree=3))
            Line((3.650025513, -21.091031112), (2.890025513, -21.091031112))
            add(Edge.make_bspline(
                [(2.890025513, -21.091031112), (2.615222706, -21.091031112), (2.077852425, -20.996506948), (1.285985366, -20.495071258), (0.784549677, -19.7032042), (0.690025513, -19.165833919), (0.690025513, -18.891031112)],
                knots=[0, 0, 0, 0, 0.25, 0.5, 0.75, 1, 1, 1, 1], degree=3))
            Line((0.690025513, -18.891031112), (0.690025513, -12.351031112))
            add(Edge.make_bspline(
                [(0.690025513, -12.351031112), (0.690025513, -12.076228304), (0.784549677, -11.538858023), (1.285985366, -10.746990965), (2.077852425, -10.245555275), (2.615222706, -10.151031112), (2.890025513, -10.151031112)],
                knots=[0, 0, 0, 0, 0.25, 0.5, 0.75, 1, 1, 1, 1], degree=3))
            Line((2.890025513, -10.151031112), (3.650025513, -10.151031112))
        make_face()
        with BuildLine():
            Line((2.890025513, -11.151031112), (3.650025513, -11.151031112))
            add(Edge.make_bspline(
                [(3.650025513, -11.151031112), (4.352969238, -11.151031112), (4.850025513, -11.648087386), (4.850025513, -12.351031112)],
                knots=[0, 0, 0, 0, 1, 1, 1, 1], degree=3, weights=[1, 0.804737854, 0.804737854, 1]))
            Line((4.850025513, -12.351031112), (4.850025513, -18.891031112))
            add(Edge.make_bspline(
                [(4.850025513, -18.891031112), (4.850025513, -19.593974837), (4.352969238, -20.091031112), (3.650025513, -20.091031112)],
                knots=[0, 0, 0, 0, 1, 1, 1, 1], degree=3, weights=[1, 0.804737854, 0.804737854, 1]))
            Line((3.650025513, -20.091031112), (2.890025513, -20.091031112))
            add(Edge.make_bspline(
                [(2.890025513, -20.091031112), (2.187081788, -20.091031112), (1.690025513, -19.593974837), (1.690025513, -18.891031112)],
                knots=[0, 0, 0, 0, 1, 1, 1, 1], degree=3, weights=[1, 0.804737854, 0.804737854, 1]))
            Line((1.690025513, -18.891031112), (1.690025513, -12.351031112))
            add(Edge.make_bspline(
                [(1.690025513, -12.351031112), (1.690025513, -11.648087386), (2.187081788, -11.151031112), (2.890025513, -11.151031112)],
                knots=[0, 0, 0, 0, 1, 1, 1, 1], degree=3, weights=[1, 0.804737854, 0.804737854, 1]))
        make_face(mode=Mode.SUBTRACT)
    # profile 2 of 4: a face of its own
    with BuildSketch(Plane(origin=(0, 2, -82.999537719), x_dir=(0, 1, 0), z_dir=(-1, 0, 0))):
        with BuildLine():
            add(Edge.make_bspline(
                [(3.650025513, -11.151031112), (4.352969238, -11.151031112), (4.850025513, -11.648087386), (4.850025513, -12.351031112)],
                knots=[0, 0, 0, 0, 1, 1, 1, 1], degree=3, weights=[1, 0.804737854, 0.804737854, 1]))
            Line((4.850025513, -12.351031112), (4.850025513, -18.891031112))
            add(Edge.make_bspline(
                [(4.850025513, -18.891031112), (4.850025513, -19.593974837), (4.352969238, -20.091031112), (3.650025513, -20.091031112)],
                knots=[0, 0, 0, 0, 1, 1, 1, 1], degree=3, weights=[1, 0.804737854, 0.804737854, 1]))
            Line((3.650025513, -20.091031112), (2.890025513, -20.091031112))
            add(Edge.make_bspline(
                [(2.890025513, -20.091031112), (2.187081788, -20.091031112), (1.690025513, -19.593974837), (1.690025513, -18.891031112)],
                knots=[0, 0, 0, 0, 1, 1, 1, 1], degree=3, weights=[1, 0.804737854, 0.804737854, 1]))
            Line((1.690025513, -18.891031112), (1.690025513, -12.351031112))
            add(Edge.make_bspline(
                [(1.690025513, -12.351031112), (1.690025513, -11.648087386), (2.187081788, -11.151031112), (2.890025513, -11.151031112)],
                knots=[0, 0, 0, 0, 1, 1, 1, 1], degree=3, weights=[1, 0.804737854, 0.804737854, 1]))
            Line((2.890025513, -11.151031112), (3.650025513, -11.151031112))
        make_face()
    # profile 3 of 4: a face of its own
    with BuildSketch(Plane(origin=(0, 2, -82.999537719), x_dir=(0, 1, 0), z_dir=(-1, 0, 0))):
        with BuildLine():
            add(Edge.make_bspline(
                [(3.650025513, -21.83505448), (3.92482832, -21.83505448), (4.462198601, -21.929578643), (5.25406566, -22.431014333), (5.755501349, -23.222881391), (5.850025513, -23.760251672), (5.850025513, -24.03505448)],
                knots=[0, 0, 0, 0, 0.25, 0.5, 0.75, 1, 1, 1, 1], degree=3))
            Line((5.850025513, -24.03505448), (5.850025513, -30.57505448))
            add(Edge.make_bspline(
                [(5.850025513, -30.57505448), (5.850025513, -30.849857287), (5.755501349, -31.387227568), (5.25406566, -32.179094626), (4.462198601, -32.680530316), (3.92482832, -32.77505448), (3.650025513, -32.77505448)],
                knots=[0, 0, 0, 0, 0.25, 0.5, 0.75, 1, 1, 1, 1], degree=3))
            Line((3.650025513, -32.77505448), (2.890025513, -32.77505448))
            add(Edge.make_bspline(
                [(2.890025513, -32.77505448), (2.615222706, -32.77505448), (2.077852425, -32.680530316), (1.285985366, -32.179094626), (0.784549677, -31.387227568), (0.690025513, -30.849857287), (0.690025513, -30.57505448)],
                knots=[0, 0, 0, 0, 0.25, 0.5, 0.75, 1, 1, 1, 1], degree=3))
            Line((0.690025513, -30.57505448), (0.690025513, -24.03505448))
            add(Edge.make_bspline(
                [(0.690025513, -24.03505448), (0.690025513, -23.760251672), (0.784549677, -23.222881391), (1.285985366, -22.431014333), (2.077852425, -21.929578643), (2.615222706, -21.83505448), (2.890025513, -21.83505448)],
                knots=[0, 0, 0, 0, 0.25, 0.5, 0.75, 1, 1, 1, 1], degree=3))
            Line((2.890025513, -21.83505448), (3.650025513, -21.83505448))
        make_face()
        with BuildLine():
            Line((2.890025513, -22.83505448), (3.650025513, -22.83505448))
            add(Edge.make_bspline(
                [(3.650025513, -22.83505448), (4.352969238, -22.83505448), (4.850025513, -23.332110755), (4.850025513, -24.03505448)],
                knots=[0, 0, 0, 0, 1, 1, 1, 1], degree=3, weights=[1, 0.804737854, 0.804737854, 1]))
            Line((4.850025513, -24.03505448), (4.850025513, -30.57505448))
            add(Edge.make_bspline(
                [(4.850025513, -30.57505448), (4.850025513, -31.277998205), (4.352969238, -31.77505448), (3.650025513, -31.77505448)],
                knots=[0, 0, 0, 0, 1, 1, 1, 1], degree=3, weights=[1, 0.804737854, 0.804737854, 1]))
            Line((3.650025513, -31.77505448), (2.890025513, -31.77505448))
            add(Edge.make_bspline(
                [(2.890025513, -31.77505448), (2.187081788, -31.77505448), (1.690025513, -31.277998205), (1.690025513, -30.57505448)],
                knots=[0, 0, 0, 0, 1, 1, 1, 1], degree=3, weights=[1, 0.804737854, 0.804737854, 1]))
            Line((1.690025513, -30.57505448), (1.690025513, -24.03505448))
            add(Edge.make_bspline(
                [(1.690025513, -24.03505448), (1.690025513, -23.332110755), (2.187081788, -22.83505448), (2.890025513, -22.83505448)],
                knots=[0, 0, 0, 0, 1, 1, 1, 1], degree=3, weights=[1, 0.804737854, 0.804737854, 1]))
        make_face(mode=Mode.SUBTRACT)
    # profile 4 of 4: a face of its own
    with BuildSketch(Plane(origin=(0, 2, -82.999537719), x_dir=(0, 1, 0), z_dir=(-1, 0, 0))):
        with BuildLine():
            add(Edge.make_bspline(
                [(3.650025513, -22.83505448), (4.352969238, -22.83505448), (4.850025513, -23.332110755), (4.850025513, -24.03505448)],
                knots=[0, 0, 0, 0, 1, 1, 1, 1], degree=3, weights=[1, 0.804737854, 0.804737854, 1]))
            Line((4.850025513, -24.03505448), (4.850025513, -30.57505448))
            add(Edge.make_bspline(
                [(4.850025513, -30.57505448), (4.850025513, -31.277998205), (4.352969238, -31.77505448), (3.650025513, -31.77505448)],
                knots=[0, 0, 0, 0, 1, 1, 1, 1], degree=3, weights=[1, 0.804737854, 0.804737854, 1]))
            Line((3.650025513, -31.77505448), (2.890025513, -31.77505448))
            add(Edge.make_bspline(
                [(2.890025513, -31.77505448), (2.187081788, -31.77505448), (1.690025513, -31.277998205), (1.690025513, -30.57505448)],
                knots=[0, 0, 0, 0, 1, 1, 1, 1], degree=3, weights=[1, 0.804737854, 0.804737854, 1]))
            Line((1.690025513, -30.57505448), (1.690025513, -24.03505448))
            add(Edge.make_bspline(
                [(1.690025513, -24.03505448), (1.690025513, -23.332110755), (2.187081788, -22.83505448), (2.890025513, -22.83505448)],
                knots=[0, 0, 0, 0, 1, 1, 1, 1], degree=3, weights=[1, 0.804737854, 0.804737854, 1]))
            Line((2.890025513, -22.83505448), (3.650025513, -22.83505448))
        make_face()
    extrude(amount=-CUT_EXTRUDE_6_DEPTH, mode=Mode.SUBTRACT)


solid = part.part
